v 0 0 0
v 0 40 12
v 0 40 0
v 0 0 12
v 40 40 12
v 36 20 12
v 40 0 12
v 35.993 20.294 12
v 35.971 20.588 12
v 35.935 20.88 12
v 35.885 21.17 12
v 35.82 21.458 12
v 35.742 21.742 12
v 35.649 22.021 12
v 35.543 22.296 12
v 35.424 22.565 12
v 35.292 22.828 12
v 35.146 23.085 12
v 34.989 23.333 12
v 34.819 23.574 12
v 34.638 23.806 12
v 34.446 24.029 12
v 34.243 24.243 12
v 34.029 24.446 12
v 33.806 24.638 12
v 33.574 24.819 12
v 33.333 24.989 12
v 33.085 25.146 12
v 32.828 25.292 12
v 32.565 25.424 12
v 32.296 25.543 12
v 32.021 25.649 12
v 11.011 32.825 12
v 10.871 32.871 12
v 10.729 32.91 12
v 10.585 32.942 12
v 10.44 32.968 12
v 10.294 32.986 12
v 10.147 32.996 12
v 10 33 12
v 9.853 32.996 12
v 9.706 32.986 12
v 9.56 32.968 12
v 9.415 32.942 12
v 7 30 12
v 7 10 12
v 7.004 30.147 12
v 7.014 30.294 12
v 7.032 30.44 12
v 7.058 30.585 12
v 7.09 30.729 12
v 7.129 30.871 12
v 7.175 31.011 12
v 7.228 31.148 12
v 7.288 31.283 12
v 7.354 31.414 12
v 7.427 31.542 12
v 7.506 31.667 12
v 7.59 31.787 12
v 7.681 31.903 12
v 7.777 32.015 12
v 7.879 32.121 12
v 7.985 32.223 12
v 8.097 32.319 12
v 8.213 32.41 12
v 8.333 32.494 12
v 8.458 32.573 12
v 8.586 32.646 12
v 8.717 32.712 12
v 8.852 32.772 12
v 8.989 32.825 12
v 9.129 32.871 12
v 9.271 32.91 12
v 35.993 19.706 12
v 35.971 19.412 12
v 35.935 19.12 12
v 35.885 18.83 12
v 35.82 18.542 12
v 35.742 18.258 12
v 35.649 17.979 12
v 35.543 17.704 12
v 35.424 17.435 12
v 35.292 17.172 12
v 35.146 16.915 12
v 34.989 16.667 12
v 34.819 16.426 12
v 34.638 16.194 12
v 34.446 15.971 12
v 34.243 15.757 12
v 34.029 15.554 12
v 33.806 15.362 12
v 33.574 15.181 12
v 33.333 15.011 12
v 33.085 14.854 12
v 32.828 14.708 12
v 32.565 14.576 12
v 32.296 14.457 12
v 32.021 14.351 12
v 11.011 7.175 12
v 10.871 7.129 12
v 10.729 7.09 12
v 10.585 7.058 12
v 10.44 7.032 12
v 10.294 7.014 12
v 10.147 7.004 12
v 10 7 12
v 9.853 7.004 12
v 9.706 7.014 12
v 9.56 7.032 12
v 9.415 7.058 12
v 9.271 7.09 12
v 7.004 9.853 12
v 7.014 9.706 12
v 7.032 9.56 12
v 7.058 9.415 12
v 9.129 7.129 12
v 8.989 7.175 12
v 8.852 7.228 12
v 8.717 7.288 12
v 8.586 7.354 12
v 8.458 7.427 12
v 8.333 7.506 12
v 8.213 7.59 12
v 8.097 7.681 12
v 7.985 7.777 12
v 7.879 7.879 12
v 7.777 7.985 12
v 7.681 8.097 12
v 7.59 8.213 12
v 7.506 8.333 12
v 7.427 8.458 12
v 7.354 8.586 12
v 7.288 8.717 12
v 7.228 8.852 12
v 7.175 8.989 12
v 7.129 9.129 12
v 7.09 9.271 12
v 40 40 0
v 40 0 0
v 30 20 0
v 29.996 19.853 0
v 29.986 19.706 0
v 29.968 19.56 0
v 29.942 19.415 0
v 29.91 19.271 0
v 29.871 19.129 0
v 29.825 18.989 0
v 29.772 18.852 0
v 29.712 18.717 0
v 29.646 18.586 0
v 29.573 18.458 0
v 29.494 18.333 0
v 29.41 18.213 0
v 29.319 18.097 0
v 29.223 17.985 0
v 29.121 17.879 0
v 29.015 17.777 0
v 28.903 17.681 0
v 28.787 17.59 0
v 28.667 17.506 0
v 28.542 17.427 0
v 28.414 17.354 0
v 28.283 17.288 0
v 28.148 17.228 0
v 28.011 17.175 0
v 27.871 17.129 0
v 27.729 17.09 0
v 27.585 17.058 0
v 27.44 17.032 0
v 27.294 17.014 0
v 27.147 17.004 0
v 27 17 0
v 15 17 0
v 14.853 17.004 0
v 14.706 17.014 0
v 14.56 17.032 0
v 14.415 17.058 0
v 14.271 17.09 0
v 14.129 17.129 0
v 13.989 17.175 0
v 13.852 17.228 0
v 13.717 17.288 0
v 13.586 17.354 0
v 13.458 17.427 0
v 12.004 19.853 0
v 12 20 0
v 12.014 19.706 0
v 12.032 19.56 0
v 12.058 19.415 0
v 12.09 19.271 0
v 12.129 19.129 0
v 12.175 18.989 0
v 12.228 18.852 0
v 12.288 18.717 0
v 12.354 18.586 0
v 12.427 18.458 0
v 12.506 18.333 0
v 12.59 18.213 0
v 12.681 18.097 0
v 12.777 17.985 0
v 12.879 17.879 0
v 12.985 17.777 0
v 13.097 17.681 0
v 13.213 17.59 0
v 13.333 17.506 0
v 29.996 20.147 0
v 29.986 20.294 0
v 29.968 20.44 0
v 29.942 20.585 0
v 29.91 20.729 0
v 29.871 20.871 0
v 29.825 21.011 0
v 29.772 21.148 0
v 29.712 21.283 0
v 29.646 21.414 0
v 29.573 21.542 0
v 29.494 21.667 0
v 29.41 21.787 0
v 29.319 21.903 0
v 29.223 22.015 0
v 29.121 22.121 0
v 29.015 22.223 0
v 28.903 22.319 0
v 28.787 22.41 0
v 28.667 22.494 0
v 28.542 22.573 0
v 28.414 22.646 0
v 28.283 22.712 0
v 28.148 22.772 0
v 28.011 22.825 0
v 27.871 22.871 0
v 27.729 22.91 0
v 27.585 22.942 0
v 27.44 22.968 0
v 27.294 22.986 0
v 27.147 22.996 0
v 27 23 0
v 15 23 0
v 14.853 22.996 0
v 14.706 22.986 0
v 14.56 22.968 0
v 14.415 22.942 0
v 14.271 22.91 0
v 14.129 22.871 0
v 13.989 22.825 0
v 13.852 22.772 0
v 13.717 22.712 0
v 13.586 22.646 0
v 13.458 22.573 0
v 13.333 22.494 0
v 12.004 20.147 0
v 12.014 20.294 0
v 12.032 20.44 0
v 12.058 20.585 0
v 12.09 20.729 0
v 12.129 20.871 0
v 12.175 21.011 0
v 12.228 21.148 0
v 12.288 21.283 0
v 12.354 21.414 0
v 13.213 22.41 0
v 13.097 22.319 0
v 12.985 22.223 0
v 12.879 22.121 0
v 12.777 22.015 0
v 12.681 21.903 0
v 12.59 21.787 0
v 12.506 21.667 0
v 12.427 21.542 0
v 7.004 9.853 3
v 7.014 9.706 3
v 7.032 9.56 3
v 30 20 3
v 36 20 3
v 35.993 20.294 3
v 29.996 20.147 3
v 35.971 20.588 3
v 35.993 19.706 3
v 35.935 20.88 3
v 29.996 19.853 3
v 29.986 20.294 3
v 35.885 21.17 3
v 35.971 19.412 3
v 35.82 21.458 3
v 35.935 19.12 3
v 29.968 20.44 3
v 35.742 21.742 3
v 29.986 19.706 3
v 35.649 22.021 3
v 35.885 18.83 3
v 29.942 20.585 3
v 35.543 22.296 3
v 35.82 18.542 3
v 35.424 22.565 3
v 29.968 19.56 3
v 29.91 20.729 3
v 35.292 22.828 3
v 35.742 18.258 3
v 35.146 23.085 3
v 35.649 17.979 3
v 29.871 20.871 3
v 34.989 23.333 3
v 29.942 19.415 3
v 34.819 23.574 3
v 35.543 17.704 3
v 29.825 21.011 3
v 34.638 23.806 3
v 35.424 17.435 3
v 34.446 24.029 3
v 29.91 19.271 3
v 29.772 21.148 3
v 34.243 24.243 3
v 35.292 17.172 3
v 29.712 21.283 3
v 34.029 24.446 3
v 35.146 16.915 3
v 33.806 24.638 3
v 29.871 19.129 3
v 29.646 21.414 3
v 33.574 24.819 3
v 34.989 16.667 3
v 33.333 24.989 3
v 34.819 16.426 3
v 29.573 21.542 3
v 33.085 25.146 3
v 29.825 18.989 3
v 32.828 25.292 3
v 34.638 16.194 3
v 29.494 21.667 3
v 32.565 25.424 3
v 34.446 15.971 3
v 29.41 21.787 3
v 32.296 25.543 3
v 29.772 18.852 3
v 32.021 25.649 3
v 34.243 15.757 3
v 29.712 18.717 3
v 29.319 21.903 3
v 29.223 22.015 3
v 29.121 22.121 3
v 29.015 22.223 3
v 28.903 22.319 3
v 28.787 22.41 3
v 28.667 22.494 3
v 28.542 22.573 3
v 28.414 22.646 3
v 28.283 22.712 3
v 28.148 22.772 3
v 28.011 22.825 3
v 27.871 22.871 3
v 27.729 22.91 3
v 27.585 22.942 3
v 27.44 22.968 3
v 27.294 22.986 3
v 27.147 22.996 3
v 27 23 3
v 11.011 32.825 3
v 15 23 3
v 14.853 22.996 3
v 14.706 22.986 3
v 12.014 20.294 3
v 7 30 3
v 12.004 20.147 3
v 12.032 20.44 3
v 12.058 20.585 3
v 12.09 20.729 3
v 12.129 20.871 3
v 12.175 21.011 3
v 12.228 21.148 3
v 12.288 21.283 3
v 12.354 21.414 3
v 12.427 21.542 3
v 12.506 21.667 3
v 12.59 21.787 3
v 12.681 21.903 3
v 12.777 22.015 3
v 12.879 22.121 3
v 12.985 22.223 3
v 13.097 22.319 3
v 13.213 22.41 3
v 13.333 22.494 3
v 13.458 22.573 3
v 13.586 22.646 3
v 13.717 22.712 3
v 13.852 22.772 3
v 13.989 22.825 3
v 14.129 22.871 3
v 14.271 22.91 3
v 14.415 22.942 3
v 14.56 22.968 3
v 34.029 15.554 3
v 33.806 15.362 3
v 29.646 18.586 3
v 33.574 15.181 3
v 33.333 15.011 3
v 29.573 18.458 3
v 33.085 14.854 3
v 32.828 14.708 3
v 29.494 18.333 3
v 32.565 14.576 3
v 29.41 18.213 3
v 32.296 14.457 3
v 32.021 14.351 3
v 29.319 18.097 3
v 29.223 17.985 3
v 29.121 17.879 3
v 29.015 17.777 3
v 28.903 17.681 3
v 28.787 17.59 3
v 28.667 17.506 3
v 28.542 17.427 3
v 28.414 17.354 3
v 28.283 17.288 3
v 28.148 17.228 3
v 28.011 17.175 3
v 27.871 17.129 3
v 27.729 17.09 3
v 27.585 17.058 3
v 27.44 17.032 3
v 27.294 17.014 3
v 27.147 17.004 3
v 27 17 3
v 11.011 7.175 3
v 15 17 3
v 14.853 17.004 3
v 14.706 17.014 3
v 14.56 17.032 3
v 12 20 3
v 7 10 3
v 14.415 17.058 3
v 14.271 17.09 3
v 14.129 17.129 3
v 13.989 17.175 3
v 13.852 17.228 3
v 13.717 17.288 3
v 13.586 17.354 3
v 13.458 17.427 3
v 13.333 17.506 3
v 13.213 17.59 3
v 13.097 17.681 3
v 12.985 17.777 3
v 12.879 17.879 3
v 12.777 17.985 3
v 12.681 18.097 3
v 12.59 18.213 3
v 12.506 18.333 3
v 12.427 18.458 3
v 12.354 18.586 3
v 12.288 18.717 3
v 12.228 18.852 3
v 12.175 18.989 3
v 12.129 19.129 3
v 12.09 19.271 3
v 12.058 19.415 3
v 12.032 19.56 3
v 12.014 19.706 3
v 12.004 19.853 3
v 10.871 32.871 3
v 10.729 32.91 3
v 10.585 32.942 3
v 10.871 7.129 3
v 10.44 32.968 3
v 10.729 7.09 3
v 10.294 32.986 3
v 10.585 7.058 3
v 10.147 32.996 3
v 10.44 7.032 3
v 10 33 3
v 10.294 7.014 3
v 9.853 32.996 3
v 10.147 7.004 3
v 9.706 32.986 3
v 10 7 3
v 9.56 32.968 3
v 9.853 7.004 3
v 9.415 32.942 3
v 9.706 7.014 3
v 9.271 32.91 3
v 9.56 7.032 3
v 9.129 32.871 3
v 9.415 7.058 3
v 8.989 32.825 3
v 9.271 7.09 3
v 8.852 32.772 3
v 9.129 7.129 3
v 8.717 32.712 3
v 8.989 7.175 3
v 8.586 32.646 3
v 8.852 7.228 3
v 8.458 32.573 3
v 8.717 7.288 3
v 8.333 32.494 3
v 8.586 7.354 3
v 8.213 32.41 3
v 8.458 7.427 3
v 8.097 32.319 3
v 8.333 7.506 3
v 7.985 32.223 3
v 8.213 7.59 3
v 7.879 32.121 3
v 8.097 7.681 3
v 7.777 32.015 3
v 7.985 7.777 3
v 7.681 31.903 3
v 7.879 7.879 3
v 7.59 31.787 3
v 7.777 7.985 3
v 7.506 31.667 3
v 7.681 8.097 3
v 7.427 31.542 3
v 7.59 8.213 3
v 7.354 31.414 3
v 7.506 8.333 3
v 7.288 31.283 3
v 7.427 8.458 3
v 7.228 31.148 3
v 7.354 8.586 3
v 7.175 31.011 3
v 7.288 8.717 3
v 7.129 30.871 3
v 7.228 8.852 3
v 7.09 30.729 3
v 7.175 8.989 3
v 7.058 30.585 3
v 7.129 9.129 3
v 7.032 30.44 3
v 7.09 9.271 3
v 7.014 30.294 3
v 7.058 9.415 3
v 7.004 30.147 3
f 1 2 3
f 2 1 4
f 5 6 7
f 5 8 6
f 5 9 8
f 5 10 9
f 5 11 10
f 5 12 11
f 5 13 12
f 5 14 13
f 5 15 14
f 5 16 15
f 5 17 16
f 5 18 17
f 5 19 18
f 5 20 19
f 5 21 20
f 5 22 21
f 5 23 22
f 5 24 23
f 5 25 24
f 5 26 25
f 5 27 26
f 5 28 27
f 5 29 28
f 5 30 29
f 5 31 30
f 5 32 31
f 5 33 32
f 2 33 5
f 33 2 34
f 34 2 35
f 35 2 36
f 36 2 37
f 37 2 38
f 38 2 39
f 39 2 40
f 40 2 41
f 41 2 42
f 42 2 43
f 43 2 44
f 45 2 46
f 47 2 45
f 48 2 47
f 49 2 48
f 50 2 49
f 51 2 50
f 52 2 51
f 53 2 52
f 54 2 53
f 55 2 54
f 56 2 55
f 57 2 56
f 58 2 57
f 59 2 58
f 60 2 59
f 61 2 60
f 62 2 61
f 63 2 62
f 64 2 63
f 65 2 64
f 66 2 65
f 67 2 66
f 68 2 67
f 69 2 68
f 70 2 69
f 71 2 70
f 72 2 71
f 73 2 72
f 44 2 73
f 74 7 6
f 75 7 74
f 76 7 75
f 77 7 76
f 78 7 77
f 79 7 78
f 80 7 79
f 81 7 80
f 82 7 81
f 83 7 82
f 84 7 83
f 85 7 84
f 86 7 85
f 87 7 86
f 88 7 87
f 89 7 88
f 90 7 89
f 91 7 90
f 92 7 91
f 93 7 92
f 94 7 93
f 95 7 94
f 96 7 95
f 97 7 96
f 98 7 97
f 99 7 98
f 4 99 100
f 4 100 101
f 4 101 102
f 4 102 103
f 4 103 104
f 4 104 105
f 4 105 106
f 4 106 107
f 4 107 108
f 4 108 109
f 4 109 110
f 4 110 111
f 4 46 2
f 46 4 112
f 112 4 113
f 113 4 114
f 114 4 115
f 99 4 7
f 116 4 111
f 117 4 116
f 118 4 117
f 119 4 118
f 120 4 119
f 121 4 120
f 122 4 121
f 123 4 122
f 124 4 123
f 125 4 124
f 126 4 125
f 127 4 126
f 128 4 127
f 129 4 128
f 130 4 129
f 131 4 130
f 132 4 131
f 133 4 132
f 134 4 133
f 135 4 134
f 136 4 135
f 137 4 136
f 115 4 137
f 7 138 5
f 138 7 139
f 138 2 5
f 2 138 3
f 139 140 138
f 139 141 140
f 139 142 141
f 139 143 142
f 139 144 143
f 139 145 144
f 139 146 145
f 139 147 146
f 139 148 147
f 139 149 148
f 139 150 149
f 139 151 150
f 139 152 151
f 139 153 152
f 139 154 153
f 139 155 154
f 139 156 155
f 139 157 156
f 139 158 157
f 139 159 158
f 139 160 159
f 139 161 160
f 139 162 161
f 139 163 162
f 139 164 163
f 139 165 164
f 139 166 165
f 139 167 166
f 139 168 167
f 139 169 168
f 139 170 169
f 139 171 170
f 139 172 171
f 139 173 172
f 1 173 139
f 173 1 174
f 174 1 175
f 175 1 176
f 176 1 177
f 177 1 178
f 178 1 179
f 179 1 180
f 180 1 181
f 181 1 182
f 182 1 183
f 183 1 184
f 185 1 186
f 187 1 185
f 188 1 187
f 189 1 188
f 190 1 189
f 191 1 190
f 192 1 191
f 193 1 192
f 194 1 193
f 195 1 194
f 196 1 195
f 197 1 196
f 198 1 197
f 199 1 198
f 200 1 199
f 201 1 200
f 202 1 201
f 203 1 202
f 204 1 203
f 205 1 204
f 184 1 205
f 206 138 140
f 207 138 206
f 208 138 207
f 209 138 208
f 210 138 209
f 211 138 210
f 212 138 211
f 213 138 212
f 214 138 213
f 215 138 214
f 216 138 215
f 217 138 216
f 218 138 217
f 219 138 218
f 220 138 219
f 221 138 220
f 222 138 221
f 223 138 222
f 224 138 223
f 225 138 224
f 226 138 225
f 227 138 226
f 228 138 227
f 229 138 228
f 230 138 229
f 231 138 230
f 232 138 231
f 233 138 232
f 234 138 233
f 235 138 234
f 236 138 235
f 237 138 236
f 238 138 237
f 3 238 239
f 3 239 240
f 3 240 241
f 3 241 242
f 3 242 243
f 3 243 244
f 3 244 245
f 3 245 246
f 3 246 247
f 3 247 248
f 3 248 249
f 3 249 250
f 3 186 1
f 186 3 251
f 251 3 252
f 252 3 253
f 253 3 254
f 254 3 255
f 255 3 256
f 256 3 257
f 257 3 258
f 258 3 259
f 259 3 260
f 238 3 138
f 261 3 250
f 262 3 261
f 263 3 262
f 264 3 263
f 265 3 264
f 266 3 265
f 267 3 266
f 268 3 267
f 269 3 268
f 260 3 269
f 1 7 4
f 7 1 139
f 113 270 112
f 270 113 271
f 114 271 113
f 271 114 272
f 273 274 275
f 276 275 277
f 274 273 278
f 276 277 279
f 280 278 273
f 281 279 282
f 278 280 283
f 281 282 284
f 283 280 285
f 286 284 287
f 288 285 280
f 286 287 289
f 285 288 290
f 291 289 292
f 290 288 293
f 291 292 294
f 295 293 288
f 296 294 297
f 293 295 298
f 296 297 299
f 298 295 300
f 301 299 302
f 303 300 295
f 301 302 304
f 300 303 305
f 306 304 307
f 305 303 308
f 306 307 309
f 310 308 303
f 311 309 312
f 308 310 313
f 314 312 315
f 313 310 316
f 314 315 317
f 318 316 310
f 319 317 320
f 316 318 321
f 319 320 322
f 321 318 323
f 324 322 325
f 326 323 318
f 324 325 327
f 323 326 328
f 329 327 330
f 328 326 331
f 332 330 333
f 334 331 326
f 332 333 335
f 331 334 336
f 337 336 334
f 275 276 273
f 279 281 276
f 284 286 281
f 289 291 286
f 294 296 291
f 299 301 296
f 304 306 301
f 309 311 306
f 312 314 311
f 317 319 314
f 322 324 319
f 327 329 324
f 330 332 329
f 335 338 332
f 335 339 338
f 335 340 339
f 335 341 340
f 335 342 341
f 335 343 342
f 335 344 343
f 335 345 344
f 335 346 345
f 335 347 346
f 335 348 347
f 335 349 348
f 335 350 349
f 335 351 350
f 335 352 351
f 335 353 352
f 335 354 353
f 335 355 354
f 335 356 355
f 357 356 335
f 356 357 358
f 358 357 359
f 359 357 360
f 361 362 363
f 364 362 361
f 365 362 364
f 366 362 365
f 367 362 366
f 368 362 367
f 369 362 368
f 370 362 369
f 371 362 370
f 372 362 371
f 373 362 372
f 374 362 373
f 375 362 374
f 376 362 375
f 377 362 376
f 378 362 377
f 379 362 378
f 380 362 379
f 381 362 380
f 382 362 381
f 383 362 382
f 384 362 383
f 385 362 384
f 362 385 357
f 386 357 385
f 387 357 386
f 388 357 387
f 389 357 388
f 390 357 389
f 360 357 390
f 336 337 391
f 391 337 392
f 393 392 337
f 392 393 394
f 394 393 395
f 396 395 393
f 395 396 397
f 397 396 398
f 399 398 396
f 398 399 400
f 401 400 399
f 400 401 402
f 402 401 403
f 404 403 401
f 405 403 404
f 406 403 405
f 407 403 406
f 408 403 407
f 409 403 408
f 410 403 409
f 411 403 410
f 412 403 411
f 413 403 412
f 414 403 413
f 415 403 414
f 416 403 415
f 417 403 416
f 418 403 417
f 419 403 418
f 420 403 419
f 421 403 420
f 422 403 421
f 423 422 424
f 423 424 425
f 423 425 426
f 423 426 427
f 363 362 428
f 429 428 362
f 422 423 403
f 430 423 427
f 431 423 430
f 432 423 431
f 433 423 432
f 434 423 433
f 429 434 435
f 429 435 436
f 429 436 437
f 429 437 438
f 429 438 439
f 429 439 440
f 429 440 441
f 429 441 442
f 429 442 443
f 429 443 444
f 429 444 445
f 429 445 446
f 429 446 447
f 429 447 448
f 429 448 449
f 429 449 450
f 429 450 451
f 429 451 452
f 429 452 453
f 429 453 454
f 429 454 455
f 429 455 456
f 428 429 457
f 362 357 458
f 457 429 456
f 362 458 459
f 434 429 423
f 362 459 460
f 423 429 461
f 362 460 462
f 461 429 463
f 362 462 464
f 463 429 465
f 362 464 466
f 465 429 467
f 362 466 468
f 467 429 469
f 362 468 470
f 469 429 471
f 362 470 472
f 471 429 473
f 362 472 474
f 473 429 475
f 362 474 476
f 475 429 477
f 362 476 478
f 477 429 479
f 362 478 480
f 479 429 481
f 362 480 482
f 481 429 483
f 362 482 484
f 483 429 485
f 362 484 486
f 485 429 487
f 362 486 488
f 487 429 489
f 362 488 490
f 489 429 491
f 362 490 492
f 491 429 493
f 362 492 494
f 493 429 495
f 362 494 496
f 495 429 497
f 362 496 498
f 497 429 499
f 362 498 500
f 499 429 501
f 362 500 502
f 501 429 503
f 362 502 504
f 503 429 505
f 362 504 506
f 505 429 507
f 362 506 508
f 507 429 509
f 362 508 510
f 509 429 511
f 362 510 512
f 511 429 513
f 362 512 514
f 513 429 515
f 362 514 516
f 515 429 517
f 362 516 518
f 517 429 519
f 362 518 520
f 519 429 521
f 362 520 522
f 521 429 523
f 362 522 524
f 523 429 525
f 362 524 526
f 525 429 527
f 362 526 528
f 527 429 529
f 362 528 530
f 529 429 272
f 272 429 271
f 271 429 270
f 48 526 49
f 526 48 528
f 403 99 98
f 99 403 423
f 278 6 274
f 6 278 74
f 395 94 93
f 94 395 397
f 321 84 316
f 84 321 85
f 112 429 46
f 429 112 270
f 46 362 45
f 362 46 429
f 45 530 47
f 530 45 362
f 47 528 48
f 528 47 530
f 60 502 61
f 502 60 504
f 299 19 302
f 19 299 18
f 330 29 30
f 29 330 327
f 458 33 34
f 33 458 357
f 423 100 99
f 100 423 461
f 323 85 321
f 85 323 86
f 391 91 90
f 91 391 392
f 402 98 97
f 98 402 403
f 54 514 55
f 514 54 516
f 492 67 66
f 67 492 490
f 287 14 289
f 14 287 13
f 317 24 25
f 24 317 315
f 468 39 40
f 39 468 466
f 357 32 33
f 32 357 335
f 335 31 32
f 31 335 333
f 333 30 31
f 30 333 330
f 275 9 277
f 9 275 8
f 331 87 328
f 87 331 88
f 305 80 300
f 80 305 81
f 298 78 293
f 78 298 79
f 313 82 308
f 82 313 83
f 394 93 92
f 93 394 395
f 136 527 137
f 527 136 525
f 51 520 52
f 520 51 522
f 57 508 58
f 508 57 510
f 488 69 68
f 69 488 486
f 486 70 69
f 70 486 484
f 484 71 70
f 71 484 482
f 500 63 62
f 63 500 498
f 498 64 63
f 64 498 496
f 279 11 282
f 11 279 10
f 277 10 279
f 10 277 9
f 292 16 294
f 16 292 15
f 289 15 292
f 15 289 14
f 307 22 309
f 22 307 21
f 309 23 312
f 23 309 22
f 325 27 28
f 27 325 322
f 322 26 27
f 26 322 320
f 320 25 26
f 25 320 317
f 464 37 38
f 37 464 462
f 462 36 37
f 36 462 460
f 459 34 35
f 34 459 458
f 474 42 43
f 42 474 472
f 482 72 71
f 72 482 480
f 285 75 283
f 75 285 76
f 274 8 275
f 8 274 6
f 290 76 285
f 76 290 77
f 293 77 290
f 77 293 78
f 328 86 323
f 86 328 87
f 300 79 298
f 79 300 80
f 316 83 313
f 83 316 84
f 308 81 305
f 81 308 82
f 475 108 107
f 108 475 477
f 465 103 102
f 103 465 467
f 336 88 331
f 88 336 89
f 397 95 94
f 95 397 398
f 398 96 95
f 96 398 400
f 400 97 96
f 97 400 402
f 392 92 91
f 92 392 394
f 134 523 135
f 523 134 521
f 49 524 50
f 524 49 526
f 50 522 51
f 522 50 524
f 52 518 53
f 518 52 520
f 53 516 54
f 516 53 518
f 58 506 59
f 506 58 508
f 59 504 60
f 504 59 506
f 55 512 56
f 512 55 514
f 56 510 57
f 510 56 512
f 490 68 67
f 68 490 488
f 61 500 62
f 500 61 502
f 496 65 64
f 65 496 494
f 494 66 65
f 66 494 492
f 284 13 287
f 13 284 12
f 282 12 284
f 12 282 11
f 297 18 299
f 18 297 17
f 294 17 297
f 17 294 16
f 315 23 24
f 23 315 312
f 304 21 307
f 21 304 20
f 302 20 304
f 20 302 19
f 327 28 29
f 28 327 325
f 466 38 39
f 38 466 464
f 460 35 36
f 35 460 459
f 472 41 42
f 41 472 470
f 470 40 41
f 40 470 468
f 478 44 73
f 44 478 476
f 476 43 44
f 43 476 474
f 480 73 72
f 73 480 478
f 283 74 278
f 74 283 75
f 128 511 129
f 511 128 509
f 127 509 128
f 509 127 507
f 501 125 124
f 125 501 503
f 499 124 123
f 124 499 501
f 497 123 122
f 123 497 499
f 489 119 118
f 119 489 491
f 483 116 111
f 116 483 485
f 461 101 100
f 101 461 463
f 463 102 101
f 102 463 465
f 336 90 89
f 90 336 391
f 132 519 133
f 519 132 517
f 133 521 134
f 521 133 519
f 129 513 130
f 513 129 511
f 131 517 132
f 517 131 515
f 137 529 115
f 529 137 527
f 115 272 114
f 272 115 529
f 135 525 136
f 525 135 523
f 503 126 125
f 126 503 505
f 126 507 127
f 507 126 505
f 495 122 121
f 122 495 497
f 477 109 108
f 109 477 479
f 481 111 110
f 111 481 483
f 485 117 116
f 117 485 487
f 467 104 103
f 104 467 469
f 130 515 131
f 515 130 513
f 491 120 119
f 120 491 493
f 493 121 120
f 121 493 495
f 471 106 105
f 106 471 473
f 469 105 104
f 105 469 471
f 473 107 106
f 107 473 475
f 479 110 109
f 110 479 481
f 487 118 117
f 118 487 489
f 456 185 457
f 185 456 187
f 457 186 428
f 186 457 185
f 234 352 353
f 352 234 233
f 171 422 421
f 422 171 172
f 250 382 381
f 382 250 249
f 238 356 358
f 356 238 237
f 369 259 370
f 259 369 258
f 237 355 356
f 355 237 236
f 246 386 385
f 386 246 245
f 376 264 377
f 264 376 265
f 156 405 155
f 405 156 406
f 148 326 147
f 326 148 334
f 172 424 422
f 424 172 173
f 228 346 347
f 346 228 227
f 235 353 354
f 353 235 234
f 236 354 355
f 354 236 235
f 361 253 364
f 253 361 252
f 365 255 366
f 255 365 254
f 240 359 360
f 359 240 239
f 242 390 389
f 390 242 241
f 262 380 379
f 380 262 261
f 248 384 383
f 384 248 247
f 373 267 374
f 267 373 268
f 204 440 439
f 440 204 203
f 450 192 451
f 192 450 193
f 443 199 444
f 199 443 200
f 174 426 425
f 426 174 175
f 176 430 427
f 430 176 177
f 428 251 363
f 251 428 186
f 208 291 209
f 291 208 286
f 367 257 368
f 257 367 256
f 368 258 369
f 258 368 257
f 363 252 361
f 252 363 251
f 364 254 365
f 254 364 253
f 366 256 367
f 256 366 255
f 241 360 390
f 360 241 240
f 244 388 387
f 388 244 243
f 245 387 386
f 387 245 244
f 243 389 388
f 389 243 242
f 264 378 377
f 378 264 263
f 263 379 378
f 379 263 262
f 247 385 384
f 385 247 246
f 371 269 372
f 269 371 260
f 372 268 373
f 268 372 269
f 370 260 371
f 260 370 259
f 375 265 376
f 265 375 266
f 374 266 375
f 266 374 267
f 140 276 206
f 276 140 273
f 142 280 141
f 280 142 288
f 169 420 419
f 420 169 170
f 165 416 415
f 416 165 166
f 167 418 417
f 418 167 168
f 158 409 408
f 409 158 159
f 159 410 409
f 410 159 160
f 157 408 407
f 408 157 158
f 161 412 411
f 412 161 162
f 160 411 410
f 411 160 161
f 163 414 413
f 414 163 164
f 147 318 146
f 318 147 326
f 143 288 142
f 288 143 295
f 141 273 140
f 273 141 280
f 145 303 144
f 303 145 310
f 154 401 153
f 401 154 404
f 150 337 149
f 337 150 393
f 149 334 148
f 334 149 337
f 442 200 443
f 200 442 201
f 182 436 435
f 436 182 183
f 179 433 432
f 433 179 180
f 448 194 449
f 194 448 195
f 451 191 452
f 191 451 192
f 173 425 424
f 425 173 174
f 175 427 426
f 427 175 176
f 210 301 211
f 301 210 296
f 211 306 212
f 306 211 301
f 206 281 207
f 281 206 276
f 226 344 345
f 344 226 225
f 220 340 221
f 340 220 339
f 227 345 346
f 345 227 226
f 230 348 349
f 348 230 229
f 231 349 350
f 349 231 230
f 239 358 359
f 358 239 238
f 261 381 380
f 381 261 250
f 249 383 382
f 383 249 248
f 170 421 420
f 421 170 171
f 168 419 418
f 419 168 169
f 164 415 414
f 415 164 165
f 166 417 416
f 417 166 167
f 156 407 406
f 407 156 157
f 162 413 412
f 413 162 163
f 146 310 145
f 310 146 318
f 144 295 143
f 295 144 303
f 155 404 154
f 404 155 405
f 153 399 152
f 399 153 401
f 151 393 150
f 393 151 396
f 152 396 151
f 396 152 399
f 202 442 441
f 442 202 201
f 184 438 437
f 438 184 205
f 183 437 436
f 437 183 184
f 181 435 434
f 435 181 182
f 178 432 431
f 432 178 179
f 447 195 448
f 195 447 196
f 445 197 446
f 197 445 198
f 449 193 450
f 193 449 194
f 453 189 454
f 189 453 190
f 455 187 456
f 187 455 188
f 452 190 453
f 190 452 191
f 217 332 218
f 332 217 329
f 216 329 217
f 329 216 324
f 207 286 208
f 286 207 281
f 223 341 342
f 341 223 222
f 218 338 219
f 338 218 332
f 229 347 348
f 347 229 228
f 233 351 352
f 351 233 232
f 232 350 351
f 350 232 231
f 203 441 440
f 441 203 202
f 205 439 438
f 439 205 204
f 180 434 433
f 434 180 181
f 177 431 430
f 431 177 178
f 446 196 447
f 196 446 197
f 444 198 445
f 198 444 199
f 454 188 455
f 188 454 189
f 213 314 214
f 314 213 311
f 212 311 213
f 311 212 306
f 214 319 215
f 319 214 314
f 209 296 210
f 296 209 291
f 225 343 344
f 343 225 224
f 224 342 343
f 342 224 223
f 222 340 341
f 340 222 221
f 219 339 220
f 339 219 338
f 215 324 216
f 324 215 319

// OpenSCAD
difference() {
  cube([40,40,12]);
  translate([0,0,3]) linear_extrude(height=20) hull() {
    translate([10,10]) circle(r=3,$fn=128);
    translate([10,30]) circle(r=3,$fn=128);
    translate([30,20]) circle(r=6,$fn=128);
  }
  translate([0,0,-1]) linear_extrude(height=20) hull() {
    translate([15,20]) circle(r=3,$fn=128);
    translate([27,20]) circle(r=3,$fn=128);
  }
}
